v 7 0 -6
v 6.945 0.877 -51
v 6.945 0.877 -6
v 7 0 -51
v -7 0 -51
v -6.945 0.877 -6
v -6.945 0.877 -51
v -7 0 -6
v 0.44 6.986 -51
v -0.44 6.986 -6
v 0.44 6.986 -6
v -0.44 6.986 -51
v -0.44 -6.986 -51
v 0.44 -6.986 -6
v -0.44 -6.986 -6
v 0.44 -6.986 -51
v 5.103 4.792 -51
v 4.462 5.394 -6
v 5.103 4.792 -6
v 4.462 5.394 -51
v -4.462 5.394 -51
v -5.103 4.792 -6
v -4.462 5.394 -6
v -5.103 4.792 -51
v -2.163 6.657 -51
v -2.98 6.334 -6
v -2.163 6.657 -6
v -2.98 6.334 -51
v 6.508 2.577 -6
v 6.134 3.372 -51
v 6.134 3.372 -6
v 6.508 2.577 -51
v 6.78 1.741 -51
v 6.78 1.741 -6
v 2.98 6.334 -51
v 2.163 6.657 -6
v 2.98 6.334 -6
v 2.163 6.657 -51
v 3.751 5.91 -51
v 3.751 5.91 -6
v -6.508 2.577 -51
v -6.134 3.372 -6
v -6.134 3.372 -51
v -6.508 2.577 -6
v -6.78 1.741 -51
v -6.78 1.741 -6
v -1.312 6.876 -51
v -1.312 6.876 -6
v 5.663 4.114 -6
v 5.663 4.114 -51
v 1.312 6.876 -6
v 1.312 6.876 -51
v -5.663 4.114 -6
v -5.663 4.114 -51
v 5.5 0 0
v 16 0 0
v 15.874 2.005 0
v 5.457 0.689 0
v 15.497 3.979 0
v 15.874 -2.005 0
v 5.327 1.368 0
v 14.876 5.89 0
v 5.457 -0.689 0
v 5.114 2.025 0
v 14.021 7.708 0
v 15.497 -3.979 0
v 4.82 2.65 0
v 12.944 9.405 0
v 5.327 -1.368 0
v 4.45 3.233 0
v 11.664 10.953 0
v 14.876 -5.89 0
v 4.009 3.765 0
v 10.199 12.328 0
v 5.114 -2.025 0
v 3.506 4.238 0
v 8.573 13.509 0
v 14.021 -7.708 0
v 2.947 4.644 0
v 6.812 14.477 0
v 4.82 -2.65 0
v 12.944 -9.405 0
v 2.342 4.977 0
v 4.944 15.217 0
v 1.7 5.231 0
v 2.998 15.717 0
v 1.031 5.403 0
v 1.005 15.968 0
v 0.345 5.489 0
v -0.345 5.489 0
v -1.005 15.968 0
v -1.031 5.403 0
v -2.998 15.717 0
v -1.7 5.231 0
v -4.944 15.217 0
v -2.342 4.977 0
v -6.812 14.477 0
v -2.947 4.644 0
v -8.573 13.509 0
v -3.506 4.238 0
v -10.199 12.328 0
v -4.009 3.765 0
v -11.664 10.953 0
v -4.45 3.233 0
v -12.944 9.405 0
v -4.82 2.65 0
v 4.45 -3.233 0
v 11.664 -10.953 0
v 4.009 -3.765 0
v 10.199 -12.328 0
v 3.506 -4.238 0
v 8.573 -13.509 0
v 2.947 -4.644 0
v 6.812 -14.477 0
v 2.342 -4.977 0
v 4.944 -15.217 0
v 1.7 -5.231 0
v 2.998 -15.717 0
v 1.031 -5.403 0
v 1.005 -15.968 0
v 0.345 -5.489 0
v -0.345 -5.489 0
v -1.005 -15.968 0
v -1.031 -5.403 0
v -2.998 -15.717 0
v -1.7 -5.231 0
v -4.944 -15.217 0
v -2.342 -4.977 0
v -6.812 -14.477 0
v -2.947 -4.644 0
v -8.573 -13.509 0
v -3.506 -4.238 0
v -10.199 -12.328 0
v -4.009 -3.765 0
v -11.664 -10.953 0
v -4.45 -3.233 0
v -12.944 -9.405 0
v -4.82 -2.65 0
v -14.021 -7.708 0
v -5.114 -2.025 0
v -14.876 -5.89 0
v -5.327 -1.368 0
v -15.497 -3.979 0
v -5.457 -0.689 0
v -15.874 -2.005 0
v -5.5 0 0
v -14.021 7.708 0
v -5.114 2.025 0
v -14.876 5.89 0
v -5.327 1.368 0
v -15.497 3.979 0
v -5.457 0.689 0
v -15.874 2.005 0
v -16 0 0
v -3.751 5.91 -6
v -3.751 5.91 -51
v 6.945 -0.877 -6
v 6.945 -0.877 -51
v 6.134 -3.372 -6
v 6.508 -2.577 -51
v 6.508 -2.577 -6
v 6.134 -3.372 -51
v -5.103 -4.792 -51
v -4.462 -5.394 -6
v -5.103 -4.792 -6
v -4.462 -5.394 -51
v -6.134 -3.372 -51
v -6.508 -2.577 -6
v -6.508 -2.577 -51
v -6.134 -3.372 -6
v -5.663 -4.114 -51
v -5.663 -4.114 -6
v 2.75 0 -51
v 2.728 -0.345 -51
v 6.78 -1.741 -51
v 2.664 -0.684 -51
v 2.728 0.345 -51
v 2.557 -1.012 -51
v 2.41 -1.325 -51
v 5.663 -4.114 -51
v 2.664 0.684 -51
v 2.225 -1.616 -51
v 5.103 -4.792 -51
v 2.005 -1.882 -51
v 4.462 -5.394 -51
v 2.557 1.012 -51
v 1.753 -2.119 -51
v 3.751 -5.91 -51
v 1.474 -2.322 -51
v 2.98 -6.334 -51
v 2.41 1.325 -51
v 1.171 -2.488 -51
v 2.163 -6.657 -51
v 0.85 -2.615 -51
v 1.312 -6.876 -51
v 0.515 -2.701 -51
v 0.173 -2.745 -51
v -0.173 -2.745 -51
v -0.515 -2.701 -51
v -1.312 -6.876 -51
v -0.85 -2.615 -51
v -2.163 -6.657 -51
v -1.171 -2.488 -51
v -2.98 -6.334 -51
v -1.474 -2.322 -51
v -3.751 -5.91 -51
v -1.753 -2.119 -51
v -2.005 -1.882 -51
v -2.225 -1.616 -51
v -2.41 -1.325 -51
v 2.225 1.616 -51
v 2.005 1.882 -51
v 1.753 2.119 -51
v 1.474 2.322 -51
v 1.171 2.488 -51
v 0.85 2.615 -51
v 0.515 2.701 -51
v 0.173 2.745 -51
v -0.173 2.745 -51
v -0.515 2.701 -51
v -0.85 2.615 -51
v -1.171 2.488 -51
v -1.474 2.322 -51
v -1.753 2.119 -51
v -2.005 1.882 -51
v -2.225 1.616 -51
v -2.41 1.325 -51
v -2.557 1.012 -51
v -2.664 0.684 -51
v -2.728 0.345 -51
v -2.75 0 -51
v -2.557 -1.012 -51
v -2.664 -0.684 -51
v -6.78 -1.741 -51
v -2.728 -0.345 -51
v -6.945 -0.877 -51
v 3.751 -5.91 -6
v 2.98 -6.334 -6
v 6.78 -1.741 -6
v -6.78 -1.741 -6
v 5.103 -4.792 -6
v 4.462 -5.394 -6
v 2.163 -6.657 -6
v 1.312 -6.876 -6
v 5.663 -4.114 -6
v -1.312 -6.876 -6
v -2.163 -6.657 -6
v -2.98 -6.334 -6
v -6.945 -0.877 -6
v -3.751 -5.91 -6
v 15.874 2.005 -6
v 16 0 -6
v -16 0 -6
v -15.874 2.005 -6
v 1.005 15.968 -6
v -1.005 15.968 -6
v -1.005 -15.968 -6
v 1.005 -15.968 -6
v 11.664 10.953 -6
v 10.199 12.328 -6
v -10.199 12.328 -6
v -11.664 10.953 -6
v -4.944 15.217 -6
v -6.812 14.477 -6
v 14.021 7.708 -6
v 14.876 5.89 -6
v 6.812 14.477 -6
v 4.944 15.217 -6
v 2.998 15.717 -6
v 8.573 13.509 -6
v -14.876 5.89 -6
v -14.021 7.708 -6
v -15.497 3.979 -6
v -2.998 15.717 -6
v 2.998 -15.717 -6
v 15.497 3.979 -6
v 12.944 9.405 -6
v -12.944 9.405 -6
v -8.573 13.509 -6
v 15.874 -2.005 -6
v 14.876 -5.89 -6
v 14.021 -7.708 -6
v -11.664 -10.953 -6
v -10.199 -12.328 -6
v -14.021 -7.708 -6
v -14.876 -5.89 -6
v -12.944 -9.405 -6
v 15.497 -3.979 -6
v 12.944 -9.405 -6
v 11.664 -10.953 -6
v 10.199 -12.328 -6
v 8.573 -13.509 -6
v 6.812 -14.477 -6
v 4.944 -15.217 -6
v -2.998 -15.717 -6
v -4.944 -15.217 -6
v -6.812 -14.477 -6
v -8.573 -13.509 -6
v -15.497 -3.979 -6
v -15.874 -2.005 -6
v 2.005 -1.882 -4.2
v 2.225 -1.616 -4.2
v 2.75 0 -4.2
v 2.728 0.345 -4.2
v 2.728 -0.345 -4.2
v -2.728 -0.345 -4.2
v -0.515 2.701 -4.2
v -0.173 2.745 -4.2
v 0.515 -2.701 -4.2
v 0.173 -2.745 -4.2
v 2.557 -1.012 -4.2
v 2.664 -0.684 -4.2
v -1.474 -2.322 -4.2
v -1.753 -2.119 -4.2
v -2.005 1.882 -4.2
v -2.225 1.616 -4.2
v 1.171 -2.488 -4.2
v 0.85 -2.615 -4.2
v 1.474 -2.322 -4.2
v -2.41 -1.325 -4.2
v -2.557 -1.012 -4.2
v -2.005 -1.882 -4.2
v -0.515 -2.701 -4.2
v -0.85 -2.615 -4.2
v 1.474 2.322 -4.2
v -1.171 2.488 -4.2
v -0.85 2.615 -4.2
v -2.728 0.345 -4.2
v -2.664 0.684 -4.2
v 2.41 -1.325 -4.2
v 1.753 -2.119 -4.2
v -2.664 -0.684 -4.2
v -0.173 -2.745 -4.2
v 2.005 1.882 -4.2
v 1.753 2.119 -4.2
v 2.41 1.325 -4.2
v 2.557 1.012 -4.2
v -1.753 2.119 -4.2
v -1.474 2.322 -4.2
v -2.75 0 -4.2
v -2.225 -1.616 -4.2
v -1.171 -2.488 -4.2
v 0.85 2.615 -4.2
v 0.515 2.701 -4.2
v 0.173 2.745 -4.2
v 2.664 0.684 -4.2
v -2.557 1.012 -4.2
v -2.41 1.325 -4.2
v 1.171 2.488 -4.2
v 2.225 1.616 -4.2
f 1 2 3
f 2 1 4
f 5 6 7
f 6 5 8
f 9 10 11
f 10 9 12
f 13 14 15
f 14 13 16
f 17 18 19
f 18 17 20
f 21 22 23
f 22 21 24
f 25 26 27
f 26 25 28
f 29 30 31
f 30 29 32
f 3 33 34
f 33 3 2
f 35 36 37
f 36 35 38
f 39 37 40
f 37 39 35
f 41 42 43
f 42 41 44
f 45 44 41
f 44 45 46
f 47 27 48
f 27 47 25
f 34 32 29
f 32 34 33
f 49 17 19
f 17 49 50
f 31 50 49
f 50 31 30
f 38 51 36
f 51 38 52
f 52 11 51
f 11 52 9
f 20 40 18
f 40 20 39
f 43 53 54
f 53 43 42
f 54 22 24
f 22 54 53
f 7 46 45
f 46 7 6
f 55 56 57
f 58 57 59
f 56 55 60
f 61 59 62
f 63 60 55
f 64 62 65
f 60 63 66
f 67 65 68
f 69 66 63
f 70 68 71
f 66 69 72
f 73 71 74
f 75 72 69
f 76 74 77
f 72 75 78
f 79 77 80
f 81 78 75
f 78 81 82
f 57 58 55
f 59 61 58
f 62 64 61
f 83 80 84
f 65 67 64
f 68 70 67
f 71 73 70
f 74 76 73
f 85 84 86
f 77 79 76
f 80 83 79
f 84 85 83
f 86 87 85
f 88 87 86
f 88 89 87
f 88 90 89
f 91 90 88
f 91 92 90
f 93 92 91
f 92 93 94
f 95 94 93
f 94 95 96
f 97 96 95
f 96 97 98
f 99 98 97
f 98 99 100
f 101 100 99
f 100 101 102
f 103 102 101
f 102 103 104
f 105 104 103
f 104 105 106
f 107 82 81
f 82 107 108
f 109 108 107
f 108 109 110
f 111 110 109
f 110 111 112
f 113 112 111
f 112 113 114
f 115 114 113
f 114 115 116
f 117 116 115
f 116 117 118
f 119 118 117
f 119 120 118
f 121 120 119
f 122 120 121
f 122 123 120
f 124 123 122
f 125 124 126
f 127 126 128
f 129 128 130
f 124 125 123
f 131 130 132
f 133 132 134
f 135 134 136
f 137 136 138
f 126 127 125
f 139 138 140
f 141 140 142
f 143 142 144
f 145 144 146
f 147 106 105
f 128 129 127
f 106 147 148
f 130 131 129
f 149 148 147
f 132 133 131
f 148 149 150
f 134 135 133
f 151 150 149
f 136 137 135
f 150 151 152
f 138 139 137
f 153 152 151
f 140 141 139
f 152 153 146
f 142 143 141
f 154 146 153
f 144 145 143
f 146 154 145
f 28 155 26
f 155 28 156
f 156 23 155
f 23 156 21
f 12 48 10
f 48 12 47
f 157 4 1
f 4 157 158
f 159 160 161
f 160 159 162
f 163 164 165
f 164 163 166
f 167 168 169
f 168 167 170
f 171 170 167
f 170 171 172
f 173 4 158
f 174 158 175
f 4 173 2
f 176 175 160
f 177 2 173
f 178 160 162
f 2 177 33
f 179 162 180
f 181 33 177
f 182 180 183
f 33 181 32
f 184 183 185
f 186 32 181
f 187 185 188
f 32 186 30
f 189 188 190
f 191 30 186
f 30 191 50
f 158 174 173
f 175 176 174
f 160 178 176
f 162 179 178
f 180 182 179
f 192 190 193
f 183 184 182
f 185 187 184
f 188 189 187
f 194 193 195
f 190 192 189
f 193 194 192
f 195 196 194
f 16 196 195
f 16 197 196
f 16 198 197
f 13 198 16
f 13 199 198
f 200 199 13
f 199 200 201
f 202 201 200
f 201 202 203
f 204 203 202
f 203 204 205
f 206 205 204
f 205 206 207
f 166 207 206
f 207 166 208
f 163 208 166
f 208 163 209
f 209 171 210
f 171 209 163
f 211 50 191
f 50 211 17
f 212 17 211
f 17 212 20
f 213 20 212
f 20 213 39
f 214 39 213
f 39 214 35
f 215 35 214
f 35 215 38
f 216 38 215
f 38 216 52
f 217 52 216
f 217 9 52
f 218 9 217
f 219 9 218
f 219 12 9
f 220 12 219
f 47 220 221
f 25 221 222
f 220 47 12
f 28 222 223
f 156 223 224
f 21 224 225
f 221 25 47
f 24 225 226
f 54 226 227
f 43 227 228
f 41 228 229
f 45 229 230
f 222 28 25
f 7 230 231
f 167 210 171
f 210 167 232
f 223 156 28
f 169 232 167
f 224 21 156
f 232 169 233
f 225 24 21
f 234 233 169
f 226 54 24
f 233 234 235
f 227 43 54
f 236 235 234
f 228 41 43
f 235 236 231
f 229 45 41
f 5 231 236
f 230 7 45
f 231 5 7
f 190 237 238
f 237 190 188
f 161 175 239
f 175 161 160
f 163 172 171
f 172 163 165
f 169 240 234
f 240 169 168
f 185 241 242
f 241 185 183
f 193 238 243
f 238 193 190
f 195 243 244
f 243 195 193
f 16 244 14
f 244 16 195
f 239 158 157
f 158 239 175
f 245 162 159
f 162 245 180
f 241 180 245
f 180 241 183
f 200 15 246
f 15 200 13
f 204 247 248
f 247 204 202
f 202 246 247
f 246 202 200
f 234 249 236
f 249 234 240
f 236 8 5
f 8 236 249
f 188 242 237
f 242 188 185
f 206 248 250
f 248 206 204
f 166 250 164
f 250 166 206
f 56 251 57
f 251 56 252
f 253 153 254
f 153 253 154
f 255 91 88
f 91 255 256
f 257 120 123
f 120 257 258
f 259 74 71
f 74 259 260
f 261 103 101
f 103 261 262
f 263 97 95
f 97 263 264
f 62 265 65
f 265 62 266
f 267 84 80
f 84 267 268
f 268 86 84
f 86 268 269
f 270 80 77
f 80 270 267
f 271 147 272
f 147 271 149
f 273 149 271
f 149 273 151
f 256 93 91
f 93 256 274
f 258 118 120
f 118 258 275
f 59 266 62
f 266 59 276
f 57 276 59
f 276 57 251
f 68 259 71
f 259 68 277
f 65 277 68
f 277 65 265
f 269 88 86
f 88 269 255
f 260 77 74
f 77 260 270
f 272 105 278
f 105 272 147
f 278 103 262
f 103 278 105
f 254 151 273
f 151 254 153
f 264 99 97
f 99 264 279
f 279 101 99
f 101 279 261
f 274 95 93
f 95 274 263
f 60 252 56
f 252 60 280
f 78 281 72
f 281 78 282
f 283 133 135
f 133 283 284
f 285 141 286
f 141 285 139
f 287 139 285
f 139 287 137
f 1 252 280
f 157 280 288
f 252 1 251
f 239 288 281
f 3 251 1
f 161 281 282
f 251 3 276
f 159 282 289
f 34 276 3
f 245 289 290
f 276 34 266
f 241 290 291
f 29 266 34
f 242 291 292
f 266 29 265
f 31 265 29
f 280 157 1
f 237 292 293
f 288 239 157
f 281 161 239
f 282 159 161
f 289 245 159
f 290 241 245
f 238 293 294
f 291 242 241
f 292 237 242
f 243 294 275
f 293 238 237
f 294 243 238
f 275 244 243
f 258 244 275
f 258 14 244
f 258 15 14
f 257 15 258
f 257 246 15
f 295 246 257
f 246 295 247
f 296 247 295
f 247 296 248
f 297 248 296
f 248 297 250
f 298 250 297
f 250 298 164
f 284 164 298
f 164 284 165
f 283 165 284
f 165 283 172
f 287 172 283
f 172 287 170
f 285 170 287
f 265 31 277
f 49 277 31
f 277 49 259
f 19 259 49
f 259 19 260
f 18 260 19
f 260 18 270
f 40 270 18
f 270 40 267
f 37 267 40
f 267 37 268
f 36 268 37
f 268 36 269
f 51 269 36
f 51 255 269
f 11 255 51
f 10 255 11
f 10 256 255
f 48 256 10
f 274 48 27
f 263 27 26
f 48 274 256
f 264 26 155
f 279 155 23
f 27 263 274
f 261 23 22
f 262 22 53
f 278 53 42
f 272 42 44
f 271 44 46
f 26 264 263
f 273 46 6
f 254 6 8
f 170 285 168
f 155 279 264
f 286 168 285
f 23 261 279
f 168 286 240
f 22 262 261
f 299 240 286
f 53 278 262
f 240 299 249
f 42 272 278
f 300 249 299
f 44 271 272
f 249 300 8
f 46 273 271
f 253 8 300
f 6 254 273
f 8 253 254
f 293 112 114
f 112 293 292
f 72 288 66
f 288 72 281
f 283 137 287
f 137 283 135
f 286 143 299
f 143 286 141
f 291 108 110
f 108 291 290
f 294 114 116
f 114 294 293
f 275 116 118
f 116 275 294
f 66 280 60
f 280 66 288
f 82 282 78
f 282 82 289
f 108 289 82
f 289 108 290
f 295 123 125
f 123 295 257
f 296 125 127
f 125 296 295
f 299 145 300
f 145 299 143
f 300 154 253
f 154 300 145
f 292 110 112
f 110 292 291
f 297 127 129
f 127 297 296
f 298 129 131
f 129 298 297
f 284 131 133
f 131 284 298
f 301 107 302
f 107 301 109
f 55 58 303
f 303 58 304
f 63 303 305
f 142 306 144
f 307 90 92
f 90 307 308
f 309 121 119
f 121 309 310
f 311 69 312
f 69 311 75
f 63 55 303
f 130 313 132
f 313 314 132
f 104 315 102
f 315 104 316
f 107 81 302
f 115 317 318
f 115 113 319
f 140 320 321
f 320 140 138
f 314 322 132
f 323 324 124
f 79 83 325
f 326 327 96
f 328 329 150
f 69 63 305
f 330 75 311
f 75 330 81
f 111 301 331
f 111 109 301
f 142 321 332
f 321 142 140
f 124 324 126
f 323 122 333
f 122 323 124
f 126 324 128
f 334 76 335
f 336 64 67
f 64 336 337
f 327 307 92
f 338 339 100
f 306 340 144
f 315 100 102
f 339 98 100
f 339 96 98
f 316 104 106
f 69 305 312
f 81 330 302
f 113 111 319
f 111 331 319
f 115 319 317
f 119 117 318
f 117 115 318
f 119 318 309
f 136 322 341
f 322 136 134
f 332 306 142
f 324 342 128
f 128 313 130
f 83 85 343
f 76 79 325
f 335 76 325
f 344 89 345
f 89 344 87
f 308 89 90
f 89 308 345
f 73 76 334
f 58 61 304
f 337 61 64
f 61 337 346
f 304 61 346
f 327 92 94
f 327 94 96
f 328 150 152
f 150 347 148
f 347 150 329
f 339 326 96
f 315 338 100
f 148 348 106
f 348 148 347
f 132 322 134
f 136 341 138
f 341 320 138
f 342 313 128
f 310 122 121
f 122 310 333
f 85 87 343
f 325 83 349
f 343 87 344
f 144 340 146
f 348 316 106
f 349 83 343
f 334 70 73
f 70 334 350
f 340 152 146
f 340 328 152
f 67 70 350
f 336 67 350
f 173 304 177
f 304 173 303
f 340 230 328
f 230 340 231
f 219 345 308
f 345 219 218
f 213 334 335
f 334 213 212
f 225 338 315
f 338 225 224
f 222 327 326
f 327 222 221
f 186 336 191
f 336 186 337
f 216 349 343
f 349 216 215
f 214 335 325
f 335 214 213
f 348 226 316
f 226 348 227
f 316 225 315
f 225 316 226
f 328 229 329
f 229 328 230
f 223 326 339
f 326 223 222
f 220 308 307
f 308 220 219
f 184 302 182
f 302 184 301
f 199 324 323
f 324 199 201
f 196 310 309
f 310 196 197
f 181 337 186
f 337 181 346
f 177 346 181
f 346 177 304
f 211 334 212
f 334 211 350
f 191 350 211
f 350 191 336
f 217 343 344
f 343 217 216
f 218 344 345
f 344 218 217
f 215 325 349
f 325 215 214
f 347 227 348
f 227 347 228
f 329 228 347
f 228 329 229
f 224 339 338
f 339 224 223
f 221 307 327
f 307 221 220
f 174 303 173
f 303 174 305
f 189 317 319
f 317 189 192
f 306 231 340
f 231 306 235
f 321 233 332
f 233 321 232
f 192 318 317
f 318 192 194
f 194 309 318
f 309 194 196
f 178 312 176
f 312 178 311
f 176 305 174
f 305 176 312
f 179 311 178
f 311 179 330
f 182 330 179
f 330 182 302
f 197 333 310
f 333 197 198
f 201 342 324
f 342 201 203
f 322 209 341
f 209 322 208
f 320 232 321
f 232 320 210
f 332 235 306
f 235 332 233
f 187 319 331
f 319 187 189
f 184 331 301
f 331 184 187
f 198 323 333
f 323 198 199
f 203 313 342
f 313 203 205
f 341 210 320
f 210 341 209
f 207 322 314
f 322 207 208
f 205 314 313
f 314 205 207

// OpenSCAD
$fn = 50;


difference() {
	union() {
		translate(v = [0, 0, -51.0000000000]) {
			cylinder(h = 51, r = 7.0000000000);
		}
		translate(v = [0, 0, -6.0000000000]) {
			cylinder(h = 6, r = 16.0000000000);
		}
	}
	union() {
		translate(v = [0, 0, 0]) {
			rotate(a = [0, 0, 0]) {
				difference() {
					union() {
						#translate(v = [0, 0, -51.0000000000]) {
							cylinder(h = 51, r = 2.2500000000);
						}
						#translate(v = [0, 0, -4.2000000000]) {
							cylinder(h = 4.2000000000, r = 7.0000000000, r1 = 2.7500000000, r2 = 5.5000000000);
						}
						#translate(v = [0, 0, -51.0000000000]) {
							cylinder(h = 51, r = 2.7500000000);
						}
						#translate(v = [0, 0, -51.0000000000]) {
							cylinder(h = 51, r = 2.2500000000);
						}
					}
					union();
				}
			}
		}
	}
}
